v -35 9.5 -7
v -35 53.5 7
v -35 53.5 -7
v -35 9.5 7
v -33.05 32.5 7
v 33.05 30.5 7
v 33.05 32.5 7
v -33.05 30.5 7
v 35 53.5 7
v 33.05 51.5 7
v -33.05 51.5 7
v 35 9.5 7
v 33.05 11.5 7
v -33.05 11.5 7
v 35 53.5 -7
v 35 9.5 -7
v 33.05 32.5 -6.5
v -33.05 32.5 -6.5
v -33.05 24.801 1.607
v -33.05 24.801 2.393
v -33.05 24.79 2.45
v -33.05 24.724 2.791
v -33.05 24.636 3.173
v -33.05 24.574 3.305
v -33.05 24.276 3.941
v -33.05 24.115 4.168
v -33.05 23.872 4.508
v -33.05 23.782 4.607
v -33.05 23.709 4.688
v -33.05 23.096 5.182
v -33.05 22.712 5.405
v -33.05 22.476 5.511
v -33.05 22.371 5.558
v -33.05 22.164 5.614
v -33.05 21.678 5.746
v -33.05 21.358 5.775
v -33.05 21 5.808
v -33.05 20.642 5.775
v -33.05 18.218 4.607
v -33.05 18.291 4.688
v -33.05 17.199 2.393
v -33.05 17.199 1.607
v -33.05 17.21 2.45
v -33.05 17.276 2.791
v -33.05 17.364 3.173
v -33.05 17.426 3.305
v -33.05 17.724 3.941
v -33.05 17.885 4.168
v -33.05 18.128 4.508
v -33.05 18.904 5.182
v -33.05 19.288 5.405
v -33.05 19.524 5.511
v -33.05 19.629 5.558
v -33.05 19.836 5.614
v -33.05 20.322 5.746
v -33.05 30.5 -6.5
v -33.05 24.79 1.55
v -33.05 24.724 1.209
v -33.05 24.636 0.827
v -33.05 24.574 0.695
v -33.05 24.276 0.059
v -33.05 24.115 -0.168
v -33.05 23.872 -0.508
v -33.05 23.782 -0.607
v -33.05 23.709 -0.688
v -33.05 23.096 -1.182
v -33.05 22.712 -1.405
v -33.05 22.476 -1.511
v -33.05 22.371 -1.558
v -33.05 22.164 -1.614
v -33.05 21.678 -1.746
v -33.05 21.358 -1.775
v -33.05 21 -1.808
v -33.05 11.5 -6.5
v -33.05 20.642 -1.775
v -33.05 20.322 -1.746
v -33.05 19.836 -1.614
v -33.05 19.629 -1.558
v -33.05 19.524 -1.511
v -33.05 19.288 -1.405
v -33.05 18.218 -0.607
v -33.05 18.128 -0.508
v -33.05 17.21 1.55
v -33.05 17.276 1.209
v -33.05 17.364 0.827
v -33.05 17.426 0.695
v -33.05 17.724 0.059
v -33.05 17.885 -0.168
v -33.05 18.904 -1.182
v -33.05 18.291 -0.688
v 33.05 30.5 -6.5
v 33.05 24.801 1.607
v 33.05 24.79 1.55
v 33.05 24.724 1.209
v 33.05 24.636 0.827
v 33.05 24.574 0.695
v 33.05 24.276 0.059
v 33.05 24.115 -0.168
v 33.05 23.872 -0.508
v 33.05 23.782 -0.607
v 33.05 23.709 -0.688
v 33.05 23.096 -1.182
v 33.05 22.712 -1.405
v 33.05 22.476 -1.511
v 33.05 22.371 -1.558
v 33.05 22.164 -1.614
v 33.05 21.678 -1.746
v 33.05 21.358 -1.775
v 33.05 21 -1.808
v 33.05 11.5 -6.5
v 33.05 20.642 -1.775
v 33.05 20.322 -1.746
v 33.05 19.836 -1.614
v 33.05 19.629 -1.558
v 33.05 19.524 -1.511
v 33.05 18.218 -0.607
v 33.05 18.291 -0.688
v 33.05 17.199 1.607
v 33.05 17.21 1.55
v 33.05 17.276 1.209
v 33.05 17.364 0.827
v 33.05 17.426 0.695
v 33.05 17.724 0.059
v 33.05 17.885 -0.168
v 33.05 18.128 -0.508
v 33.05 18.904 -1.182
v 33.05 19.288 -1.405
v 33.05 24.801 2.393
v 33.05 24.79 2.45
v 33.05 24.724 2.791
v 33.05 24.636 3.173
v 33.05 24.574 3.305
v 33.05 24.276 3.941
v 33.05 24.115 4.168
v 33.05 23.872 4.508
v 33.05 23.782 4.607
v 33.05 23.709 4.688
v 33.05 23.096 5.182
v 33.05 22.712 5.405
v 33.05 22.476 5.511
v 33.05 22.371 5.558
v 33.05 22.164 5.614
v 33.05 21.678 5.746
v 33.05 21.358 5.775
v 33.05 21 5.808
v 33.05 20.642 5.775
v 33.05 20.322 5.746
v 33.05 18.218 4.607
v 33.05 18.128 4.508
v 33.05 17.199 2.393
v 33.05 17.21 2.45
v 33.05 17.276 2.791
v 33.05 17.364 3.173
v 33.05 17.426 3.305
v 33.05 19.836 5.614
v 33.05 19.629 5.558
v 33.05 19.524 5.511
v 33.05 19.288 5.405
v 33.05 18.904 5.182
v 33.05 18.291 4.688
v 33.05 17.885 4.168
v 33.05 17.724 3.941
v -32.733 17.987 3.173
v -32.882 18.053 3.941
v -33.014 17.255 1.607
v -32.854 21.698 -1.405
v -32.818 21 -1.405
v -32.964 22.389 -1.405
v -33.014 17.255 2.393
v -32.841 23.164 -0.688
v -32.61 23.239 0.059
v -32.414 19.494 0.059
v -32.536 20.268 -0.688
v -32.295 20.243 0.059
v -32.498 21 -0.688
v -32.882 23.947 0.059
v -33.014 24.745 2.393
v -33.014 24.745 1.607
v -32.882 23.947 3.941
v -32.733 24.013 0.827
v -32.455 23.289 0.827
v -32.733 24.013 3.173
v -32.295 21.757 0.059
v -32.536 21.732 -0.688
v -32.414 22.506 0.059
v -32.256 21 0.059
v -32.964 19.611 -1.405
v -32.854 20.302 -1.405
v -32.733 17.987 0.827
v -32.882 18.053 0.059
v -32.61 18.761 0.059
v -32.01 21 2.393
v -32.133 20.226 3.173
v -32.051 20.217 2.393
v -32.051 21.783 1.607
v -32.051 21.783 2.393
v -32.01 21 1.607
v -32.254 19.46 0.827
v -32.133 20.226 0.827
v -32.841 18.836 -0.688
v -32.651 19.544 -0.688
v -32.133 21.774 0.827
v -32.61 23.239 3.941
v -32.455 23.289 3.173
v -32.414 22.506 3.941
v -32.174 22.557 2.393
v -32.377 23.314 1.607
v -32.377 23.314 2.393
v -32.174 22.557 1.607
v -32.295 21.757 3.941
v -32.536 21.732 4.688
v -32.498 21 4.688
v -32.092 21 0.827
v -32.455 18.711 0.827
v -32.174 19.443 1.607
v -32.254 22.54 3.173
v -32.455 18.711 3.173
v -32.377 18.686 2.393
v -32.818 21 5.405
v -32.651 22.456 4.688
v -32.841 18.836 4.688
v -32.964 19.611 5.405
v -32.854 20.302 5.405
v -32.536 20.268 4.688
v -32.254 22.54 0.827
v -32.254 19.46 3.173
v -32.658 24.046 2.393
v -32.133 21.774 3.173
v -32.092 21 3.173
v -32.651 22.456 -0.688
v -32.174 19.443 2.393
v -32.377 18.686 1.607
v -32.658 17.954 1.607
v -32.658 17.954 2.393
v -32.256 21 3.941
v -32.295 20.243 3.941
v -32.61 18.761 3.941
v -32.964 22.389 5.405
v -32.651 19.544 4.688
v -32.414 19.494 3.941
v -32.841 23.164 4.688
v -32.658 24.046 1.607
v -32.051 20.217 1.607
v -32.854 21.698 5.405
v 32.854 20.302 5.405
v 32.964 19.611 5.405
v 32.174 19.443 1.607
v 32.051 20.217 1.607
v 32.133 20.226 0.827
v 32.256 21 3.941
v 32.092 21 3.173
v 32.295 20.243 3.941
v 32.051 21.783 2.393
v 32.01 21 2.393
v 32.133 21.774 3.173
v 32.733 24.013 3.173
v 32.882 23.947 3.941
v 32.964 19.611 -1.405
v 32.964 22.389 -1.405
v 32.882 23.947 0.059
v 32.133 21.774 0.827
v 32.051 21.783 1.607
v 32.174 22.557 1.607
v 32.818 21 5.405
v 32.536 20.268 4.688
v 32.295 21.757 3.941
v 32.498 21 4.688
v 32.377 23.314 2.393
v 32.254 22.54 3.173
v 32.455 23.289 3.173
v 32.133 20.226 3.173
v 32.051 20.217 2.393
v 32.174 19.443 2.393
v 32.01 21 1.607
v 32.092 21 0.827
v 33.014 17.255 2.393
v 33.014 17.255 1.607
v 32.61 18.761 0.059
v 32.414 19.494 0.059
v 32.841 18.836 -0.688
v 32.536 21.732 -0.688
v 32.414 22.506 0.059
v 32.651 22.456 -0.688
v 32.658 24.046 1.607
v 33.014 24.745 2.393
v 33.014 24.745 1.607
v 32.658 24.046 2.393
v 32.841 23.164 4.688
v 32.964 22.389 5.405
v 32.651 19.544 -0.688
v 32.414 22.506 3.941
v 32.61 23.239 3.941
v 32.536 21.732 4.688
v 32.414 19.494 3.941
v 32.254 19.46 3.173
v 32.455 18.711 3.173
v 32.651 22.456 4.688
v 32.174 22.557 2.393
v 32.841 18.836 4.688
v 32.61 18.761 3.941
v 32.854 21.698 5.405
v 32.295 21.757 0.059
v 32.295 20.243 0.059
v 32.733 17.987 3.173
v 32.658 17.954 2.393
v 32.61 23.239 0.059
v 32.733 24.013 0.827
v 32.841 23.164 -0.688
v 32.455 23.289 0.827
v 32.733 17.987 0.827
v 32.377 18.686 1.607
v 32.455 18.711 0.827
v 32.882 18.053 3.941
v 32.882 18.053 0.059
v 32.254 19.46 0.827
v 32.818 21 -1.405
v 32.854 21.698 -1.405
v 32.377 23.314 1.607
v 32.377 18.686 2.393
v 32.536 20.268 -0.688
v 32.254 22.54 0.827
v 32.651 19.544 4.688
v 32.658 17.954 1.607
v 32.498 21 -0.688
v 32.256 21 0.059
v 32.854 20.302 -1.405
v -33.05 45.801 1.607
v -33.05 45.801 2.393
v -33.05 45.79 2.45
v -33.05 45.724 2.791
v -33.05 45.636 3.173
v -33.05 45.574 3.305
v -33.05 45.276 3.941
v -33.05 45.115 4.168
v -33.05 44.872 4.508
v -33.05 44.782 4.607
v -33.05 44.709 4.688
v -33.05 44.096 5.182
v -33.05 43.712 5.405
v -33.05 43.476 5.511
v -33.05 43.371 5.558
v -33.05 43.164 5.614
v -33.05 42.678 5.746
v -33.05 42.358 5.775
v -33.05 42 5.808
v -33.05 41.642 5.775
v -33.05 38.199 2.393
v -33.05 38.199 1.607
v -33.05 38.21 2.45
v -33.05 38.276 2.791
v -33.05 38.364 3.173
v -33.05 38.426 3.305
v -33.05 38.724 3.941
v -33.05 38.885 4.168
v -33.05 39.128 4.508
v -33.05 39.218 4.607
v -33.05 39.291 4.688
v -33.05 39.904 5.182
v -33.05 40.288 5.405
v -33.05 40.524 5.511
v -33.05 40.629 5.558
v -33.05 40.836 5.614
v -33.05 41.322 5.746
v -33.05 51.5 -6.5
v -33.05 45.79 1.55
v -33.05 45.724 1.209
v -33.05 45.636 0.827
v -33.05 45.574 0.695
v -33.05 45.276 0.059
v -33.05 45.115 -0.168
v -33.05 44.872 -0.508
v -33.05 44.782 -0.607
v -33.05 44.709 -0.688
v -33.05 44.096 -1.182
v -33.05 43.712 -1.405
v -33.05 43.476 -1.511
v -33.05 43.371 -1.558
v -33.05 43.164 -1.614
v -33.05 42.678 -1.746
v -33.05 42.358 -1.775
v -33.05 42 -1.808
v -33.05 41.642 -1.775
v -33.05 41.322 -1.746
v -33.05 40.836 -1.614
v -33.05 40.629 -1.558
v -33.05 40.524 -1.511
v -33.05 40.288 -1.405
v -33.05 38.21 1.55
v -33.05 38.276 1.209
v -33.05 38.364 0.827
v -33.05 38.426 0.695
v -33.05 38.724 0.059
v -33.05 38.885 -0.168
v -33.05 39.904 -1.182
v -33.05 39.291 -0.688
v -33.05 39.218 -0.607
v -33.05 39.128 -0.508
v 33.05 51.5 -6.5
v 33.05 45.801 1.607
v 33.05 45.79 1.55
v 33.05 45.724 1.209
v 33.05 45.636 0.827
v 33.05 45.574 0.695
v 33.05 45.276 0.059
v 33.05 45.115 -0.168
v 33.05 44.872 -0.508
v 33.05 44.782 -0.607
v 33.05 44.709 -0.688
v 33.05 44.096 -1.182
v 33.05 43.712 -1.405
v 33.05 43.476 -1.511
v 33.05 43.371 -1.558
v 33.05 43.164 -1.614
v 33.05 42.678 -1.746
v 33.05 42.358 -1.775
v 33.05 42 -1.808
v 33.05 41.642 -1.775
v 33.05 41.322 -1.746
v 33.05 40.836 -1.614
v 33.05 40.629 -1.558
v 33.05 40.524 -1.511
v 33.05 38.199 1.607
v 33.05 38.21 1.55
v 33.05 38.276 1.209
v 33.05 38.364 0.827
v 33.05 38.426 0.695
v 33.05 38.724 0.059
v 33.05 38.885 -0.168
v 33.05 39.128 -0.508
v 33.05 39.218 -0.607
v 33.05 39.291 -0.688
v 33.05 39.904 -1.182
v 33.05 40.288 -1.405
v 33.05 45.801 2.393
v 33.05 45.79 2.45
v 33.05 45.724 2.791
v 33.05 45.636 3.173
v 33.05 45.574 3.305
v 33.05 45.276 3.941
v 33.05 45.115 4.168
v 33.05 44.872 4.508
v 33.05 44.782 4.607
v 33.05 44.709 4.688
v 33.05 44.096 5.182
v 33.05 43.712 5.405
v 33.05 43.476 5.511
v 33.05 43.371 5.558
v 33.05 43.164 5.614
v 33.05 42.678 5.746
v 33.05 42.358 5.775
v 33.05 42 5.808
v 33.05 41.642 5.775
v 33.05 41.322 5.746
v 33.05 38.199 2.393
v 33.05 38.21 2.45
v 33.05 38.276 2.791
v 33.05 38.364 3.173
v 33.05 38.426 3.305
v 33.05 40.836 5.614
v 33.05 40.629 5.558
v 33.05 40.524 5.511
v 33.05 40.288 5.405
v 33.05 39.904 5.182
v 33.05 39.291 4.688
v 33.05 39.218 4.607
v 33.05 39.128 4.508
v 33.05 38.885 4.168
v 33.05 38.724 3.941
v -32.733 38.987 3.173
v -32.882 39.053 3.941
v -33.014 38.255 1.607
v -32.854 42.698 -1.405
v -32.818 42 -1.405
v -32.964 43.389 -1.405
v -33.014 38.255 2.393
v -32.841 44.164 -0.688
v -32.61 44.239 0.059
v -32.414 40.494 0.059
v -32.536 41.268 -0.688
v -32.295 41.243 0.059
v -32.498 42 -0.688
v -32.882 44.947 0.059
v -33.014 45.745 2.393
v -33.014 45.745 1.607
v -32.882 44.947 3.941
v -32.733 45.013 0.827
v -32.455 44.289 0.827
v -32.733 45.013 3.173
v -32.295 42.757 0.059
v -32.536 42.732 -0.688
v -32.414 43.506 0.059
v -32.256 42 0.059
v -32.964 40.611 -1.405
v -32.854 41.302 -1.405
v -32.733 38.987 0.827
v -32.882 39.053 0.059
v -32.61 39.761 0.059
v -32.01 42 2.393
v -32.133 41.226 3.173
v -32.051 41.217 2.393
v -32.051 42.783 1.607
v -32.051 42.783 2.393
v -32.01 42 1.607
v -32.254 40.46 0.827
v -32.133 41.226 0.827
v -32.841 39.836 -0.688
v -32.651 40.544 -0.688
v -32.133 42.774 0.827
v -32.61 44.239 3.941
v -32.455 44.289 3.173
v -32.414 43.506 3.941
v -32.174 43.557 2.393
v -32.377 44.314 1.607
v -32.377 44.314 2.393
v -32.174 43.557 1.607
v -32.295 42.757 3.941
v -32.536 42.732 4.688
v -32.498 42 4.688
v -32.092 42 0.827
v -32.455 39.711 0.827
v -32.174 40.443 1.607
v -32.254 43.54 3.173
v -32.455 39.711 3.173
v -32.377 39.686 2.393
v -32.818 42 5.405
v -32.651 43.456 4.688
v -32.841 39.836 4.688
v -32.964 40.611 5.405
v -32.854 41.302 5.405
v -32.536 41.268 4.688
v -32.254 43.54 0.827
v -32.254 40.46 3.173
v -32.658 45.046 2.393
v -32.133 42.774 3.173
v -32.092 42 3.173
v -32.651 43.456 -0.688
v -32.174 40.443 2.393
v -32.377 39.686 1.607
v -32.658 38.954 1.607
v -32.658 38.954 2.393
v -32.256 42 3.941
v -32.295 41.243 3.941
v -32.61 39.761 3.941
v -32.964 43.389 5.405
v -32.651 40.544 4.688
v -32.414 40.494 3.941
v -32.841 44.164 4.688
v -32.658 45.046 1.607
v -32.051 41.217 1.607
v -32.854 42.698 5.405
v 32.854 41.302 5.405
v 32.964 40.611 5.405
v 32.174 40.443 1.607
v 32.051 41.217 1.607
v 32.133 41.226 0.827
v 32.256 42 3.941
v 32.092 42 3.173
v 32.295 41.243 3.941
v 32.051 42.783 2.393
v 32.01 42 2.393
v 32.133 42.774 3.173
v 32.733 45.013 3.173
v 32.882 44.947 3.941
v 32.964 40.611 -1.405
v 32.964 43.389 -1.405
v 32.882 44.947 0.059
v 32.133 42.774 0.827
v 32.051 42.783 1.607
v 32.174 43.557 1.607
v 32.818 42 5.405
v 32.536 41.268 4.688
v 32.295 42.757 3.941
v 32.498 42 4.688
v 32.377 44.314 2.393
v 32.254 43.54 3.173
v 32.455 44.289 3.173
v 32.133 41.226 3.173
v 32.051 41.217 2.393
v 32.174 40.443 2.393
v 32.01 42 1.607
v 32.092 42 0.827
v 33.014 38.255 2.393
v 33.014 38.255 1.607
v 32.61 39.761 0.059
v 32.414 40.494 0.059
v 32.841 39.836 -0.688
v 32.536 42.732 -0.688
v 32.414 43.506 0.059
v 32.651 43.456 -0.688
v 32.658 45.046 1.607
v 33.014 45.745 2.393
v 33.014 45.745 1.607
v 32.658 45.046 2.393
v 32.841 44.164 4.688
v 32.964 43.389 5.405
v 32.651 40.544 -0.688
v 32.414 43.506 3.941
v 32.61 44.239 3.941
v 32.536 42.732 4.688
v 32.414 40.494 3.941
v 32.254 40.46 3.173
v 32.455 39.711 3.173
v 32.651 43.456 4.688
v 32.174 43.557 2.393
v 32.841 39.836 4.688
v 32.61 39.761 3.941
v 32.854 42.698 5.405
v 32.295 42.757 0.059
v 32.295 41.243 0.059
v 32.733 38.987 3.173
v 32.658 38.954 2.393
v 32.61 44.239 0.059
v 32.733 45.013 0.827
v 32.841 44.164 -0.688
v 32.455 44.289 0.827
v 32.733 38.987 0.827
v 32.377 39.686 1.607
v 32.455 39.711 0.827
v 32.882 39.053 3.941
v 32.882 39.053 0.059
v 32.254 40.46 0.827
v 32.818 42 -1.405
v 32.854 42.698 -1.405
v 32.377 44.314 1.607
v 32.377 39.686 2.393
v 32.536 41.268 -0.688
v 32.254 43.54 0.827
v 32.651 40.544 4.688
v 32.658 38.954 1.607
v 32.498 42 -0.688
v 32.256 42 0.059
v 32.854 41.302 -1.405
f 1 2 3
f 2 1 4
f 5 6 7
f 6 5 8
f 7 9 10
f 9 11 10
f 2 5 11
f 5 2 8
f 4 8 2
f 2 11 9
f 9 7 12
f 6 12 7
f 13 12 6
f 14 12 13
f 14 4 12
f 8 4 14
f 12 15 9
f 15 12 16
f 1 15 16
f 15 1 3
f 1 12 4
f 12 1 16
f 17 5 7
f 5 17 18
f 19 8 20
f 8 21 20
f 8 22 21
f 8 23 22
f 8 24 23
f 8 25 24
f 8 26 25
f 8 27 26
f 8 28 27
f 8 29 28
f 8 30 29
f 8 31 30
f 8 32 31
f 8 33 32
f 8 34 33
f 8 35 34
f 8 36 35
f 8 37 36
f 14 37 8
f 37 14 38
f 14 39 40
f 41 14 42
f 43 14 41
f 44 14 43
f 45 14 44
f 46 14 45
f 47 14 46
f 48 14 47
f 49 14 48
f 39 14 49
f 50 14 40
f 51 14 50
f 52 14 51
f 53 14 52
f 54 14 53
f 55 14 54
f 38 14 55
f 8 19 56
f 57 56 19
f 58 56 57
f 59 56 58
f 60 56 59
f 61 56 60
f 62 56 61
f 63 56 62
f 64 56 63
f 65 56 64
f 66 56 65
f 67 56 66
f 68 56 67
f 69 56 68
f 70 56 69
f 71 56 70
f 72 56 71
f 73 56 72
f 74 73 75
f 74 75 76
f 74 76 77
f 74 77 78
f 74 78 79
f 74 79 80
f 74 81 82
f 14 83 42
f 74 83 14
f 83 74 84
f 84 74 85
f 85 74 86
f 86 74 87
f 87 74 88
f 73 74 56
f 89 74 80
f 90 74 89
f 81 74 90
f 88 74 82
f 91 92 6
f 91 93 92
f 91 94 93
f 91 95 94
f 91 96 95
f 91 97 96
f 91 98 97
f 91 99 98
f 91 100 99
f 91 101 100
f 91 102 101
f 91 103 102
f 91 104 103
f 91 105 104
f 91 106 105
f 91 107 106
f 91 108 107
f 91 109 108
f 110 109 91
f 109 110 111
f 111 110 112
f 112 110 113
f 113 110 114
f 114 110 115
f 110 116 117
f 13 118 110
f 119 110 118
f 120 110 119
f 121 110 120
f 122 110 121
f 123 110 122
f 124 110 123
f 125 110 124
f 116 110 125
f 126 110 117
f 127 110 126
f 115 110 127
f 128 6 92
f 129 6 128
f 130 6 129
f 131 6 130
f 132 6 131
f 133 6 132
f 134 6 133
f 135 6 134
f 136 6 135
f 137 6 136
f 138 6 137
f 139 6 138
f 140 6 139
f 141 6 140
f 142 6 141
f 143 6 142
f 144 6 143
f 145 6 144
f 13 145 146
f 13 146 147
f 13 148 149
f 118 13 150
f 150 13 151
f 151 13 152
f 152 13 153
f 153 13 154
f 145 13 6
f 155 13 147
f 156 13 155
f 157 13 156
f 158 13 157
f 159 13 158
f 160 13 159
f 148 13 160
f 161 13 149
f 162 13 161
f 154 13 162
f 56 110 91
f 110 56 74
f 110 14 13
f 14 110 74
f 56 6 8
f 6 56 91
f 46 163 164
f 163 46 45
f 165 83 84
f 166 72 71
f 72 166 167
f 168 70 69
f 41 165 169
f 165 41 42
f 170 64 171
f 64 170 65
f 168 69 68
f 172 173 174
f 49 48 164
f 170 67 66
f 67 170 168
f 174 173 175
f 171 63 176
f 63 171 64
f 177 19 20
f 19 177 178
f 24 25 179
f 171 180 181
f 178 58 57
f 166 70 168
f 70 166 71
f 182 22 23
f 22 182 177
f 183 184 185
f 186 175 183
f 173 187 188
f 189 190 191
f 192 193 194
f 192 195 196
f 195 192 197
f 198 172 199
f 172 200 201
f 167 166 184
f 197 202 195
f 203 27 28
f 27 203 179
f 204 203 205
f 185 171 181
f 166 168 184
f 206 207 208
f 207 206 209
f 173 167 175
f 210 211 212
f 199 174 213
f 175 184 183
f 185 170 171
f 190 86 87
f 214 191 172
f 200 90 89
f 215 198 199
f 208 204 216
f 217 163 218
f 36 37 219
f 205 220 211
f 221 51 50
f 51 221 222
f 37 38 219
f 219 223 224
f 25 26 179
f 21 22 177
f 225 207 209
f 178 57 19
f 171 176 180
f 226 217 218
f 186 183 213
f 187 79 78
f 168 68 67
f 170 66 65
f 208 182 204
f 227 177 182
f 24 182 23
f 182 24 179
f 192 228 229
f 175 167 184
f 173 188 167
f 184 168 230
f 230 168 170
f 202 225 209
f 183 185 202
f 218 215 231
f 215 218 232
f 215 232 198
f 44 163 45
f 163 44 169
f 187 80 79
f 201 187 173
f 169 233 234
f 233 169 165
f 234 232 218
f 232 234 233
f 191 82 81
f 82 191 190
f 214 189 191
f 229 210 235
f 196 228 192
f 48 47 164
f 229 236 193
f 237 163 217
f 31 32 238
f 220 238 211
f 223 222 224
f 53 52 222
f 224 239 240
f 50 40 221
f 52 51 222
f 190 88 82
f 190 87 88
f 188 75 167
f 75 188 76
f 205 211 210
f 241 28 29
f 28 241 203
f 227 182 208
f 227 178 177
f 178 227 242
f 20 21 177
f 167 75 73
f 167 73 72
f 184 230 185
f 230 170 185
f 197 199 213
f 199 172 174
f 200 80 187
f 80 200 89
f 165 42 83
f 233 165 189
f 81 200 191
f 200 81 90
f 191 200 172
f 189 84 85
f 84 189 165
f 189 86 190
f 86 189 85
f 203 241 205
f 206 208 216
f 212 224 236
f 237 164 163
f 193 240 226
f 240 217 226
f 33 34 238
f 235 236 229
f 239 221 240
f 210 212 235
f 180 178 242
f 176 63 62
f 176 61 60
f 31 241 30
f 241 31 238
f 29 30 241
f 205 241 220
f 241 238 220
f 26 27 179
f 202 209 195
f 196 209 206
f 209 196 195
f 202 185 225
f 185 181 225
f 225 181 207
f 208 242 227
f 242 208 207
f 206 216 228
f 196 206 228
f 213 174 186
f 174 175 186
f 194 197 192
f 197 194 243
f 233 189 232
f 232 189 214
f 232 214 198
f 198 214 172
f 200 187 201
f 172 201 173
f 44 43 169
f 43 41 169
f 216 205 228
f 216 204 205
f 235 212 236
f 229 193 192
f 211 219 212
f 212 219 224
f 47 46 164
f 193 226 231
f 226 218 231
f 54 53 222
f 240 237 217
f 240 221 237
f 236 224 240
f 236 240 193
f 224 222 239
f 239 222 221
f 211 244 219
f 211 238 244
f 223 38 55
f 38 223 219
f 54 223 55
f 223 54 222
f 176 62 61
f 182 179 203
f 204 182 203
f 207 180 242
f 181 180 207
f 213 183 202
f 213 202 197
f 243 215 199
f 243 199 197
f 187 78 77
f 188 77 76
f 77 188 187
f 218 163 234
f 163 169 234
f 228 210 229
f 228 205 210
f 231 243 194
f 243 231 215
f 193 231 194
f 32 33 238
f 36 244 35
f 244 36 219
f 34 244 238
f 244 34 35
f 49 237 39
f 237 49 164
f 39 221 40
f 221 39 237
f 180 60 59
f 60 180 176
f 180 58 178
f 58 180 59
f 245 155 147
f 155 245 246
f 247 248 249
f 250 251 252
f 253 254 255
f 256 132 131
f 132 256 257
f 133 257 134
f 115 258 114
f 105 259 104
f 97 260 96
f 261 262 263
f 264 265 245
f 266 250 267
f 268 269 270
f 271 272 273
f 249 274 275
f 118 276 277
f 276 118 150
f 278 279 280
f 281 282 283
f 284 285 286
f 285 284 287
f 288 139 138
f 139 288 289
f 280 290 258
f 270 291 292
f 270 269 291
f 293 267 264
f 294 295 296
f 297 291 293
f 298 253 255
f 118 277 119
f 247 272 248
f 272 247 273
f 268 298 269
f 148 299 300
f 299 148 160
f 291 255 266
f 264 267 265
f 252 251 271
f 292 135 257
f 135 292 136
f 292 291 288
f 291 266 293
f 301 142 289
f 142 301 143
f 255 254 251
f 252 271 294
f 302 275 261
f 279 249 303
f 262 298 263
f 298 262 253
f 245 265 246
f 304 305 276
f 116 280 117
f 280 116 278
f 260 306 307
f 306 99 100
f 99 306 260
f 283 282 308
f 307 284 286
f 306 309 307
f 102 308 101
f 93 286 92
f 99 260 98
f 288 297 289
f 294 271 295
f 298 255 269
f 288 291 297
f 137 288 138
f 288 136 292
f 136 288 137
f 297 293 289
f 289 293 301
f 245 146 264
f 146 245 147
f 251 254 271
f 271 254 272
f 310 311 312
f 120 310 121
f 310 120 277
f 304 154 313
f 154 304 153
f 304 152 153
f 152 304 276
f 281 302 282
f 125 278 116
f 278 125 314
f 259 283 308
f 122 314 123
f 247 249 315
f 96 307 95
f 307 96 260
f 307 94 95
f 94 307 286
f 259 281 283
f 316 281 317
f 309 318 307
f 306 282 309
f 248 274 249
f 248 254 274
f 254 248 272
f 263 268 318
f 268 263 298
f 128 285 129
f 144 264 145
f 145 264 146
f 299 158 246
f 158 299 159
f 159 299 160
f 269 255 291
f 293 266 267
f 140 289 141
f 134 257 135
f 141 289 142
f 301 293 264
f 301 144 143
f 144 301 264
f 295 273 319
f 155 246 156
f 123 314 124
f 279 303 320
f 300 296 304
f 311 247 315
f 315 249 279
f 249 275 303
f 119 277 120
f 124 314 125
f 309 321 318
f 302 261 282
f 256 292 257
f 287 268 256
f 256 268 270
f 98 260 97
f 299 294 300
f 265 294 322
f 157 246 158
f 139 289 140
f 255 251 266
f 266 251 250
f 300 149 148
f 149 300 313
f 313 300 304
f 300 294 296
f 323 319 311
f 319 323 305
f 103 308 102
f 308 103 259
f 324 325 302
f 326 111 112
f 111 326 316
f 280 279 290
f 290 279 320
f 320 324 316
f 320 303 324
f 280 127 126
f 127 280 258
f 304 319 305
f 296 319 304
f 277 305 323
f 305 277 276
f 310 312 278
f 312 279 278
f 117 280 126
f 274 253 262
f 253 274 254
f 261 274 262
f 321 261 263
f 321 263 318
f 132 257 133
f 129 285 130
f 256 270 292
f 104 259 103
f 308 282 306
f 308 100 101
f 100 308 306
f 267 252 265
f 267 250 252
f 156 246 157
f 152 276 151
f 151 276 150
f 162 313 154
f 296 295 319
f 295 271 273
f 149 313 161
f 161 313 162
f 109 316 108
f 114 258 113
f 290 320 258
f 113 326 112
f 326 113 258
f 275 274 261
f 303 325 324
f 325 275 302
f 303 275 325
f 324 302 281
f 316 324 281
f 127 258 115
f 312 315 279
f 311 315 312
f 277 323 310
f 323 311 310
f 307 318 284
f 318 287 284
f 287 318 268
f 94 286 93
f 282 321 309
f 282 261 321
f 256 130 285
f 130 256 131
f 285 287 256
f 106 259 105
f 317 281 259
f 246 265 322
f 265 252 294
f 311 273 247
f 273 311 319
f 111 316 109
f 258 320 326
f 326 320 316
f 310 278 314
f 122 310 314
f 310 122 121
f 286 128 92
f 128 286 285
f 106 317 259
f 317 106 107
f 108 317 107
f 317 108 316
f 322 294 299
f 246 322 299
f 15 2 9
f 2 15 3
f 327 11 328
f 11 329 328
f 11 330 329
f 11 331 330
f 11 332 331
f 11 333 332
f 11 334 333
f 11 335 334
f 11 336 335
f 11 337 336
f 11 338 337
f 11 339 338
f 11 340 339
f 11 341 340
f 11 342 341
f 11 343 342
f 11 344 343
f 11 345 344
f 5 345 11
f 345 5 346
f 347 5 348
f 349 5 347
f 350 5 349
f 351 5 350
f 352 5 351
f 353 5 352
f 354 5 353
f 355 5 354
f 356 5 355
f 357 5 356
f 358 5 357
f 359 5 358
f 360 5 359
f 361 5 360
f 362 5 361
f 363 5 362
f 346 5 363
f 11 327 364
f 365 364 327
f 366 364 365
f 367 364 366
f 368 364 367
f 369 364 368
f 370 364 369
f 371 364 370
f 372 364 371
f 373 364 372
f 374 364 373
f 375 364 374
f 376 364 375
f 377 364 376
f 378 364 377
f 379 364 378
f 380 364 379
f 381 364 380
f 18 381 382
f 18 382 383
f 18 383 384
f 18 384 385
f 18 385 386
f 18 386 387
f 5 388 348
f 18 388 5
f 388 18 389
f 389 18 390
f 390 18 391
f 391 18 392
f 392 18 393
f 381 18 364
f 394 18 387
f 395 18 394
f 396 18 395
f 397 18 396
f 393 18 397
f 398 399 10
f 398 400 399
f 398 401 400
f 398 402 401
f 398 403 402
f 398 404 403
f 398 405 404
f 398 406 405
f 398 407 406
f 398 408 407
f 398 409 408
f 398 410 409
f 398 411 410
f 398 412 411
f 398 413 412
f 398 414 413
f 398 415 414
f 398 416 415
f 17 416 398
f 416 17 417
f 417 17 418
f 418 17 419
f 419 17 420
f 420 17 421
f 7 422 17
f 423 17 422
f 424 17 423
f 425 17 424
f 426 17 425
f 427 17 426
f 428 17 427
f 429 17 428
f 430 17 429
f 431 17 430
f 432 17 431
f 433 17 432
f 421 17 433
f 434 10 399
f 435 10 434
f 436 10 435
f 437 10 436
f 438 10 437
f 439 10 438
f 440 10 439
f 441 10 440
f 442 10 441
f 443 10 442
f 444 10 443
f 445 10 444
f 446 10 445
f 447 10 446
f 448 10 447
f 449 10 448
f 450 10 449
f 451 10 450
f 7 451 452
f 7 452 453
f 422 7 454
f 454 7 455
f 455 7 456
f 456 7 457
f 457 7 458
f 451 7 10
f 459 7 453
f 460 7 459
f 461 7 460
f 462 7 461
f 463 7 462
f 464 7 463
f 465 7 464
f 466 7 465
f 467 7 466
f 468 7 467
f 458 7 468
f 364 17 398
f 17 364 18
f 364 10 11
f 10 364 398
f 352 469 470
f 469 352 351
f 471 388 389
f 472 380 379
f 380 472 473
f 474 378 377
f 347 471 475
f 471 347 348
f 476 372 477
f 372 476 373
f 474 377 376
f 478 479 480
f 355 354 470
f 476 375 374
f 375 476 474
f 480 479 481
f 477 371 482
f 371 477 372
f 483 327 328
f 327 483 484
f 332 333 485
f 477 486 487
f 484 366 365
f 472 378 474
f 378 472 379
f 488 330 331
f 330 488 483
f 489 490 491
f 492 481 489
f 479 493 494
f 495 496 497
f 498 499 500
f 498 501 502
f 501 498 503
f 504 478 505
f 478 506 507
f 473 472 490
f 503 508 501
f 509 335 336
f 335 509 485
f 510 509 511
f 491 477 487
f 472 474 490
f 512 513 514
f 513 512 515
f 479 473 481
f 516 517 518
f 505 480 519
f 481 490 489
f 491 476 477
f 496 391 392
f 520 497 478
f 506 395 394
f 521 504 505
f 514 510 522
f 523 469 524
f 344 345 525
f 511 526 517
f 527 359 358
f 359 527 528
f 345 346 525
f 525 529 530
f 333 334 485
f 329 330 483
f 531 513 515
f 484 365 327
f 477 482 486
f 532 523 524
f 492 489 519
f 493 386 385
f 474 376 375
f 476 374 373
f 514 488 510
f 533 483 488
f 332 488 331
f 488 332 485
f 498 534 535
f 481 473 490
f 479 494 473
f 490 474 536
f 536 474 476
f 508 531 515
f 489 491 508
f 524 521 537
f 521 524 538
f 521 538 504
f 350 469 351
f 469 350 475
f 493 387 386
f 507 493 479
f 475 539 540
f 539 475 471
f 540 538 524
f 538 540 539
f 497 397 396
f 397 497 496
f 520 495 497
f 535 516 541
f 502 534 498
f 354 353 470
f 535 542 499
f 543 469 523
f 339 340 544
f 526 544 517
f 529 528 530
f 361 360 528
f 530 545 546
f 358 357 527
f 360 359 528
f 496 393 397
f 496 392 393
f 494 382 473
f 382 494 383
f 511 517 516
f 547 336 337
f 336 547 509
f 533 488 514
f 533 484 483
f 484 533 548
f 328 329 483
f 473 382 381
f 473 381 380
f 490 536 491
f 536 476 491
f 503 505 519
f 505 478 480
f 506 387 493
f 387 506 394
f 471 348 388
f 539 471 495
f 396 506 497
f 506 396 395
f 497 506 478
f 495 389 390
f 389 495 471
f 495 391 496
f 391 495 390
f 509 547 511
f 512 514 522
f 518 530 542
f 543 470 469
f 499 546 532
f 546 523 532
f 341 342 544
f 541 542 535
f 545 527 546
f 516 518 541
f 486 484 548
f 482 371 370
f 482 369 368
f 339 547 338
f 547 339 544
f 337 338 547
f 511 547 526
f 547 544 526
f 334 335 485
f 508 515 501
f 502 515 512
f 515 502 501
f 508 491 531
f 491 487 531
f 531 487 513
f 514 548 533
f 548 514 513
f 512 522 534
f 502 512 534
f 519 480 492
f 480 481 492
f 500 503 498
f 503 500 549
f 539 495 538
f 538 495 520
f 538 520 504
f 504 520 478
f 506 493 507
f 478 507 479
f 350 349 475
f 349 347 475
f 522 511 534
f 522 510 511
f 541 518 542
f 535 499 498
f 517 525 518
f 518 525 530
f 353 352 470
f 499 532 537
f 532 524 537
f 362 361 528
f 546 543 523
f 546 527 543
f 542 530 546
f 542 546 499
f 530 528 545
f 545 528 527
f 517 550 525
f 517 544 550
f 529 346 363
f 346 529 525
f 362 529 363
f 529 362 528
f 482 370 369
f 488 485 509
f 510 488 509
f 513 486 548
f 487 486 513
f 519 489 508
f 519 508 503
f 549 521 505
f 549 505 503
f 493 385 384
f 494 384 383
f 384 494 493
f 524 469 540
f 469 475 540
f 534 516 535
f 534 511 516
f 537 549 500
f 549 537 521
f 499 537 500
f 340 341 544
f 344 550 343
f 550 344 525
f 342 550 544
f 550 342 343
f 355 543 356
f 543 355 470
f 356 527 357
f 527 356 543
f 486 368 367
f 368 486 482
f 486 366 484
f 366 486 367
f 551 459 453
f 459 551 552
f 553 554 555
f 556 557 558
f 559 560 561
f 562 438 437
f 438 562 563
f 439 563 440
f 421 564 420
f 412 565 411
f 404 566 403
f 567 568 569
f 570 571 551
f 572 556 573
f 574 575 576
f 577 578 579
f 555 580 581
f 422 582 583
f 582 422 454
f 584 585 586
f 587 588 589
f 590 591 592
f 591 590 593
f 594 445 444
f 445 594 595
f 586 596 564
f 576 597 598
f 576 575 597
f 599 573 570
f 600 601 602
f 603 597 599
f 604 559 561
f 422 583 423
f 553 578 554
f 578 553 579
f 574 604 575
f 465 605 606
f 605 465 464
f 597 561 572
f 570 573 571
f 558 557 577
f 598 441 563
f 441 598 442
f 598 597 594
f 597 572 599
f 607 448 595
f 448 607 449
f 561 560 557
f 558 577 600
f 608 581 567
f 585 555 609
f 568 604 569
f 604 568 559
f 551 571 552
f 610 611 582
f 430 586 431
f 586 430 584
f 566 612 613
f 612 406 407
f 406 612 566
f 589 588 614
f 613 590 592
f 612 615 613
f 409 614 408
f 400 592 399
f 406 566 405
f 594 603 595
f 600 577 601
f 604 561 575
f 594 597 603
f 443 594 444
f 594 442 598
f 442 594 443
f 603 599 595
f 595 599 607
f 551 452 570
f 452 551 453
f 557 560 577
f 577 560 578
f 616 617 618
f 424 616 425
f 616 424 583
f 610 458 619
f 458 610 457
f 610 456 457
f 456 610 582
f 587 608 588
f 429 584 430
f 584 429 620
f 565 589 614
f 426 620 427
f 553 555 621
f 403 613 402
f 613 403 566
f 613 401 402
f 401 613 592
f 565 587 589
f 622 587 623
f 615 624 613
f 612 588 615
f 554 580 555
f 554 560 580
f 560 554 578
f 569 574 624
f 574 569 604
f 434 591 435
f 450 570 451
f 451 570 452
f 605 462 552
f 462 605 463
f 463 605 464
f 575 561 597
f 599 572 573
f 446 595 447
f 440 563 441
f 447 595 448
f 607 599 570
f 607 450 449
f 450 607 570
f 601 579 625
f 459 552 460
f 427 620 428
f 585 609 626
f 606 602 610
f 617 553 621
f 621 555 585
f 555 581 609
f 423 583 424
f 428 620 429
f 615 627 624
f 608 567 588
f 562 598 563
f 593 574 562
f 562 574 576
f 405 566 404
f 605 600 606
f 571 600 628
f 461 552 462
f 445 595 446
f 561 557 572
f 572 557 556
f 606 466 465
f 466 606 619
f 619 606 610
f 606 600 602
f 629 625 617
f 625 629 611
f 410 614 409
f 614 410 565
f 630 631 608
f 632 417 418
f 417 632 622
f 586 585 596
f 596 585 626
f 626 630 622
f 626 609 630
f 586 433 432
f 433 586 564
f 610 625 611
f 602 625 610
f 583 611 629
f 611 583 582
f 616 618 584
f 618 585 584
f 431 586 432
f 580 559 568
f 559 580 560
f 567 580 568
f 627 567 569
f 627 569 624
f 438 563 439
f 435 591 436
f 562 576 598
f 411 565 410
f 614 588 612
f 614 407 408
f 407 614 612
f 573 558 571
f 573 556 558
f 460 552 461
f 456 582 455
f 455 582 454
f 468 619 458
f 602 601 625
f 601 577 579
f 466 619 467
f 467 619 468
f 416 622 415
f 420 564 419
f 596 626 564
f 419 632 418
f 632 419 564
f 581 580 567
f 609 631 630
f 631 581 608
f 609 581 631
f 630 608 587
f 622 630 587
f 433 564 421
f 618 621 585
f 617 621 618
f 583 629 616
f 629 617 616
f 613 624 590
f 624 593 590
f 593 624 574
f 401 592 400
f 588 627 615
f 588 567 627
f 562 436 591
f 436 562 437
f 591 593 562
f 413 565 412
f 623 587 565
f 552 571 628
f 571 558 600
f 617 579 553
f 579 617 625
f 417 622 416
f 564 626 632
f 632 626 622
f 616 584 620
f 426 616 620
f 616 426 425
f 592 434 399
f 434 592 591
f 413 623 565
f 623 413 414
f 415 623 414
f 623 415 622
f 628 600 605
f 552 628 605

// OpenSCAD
/*
*******************************************
Objekt Info: Akku 18650 Box einfach/zweifach

*******************************************
Version: 30.04.2022 khf
*******************************************
*/

//***************   Auswahl   *************

        //Auswahl 1x Case oder 2x Case
        part="case2"; // case1, case2

//***************   Libraries  ************

//keine

//*****************************************

//***************  Parameter   *************
$fn=60;
//*****************************************

//**************   Programm  **************


module case1(){
//Case 1x
 union(){
difference()
translate(v = [0, 21, 0])
difference(){
cube(size = [70,23,14], center = true);
translate(v = [0, 0, 1])
cube(size = [66.1,19,15], center = true);
}


//+Pol
translate(v = [-39.5, 21, 2])
difference(){
sphere(d = 15);
rotate([0,0,90])
translate(v = [-10, -6, -10])
cube(size = [20,25,20]);
    }

// /*
//-Pol
 translate(v = [39.5, 21, 2])
 union(){
    difference(){
sphere(d = 15);
rotate([0,0,-90])
translate(v = [-10, -6, -10])
cube(size = [20,25,20]);
 }
}

}
}



module case2(){
//Case Nr 1
 union(){
difference()
translate(v = [0, 21, 0])
difference(){
cube(size = [70,23,14], center = true);
translate(v = [0, 0, 1])
cube(size = [66.1,19,15], center = true);
}


//+Pol
translate(v = [-39.5, 21, 2])
difference(){
sphere(d = 15);
rotate([0,0,90])
translate(v = [-10, -6, -10])
cube(size = [20,25,20]);
    }

// /*
//-Pol
 translate(v = [39.5, 21, 2])
 union(){
    difference(){
sphere(d = 15);
rotate([0,0,-90])
translate(v = [-10, -6, -10])
cube(size = [20,25,20]);
 }
}

}

//Case 2x

 translate(v = [0, 21, 0])
 union(){
difference()
translate(v = [0, 21, 0])
difference(){
cube(size = [70,23,14], center = true);
translate(v = [0, 0, 1])
cube(size = [66.1,19,15], center = true);
}


//+Pol
translate(v = [-39.5, 21, 2])
difference(){
sphere(d = 15);
rotate([0,0,90])
translate(v = [-10, -6, -10])
cube(size = [20,25,20]);
    }

//-Pol
 translate(v = [39.5, 21, 2])
 union(){
    difference(){
sphere(d = 15);
rotate([0,0,-90])
translate(v = [-10, -6, -10])
cube(size = [20,25,20]);
 }
}
}
}

//Part:

  if(part=="case1")
    case1();
  else if(part=="case2")
    case2();
